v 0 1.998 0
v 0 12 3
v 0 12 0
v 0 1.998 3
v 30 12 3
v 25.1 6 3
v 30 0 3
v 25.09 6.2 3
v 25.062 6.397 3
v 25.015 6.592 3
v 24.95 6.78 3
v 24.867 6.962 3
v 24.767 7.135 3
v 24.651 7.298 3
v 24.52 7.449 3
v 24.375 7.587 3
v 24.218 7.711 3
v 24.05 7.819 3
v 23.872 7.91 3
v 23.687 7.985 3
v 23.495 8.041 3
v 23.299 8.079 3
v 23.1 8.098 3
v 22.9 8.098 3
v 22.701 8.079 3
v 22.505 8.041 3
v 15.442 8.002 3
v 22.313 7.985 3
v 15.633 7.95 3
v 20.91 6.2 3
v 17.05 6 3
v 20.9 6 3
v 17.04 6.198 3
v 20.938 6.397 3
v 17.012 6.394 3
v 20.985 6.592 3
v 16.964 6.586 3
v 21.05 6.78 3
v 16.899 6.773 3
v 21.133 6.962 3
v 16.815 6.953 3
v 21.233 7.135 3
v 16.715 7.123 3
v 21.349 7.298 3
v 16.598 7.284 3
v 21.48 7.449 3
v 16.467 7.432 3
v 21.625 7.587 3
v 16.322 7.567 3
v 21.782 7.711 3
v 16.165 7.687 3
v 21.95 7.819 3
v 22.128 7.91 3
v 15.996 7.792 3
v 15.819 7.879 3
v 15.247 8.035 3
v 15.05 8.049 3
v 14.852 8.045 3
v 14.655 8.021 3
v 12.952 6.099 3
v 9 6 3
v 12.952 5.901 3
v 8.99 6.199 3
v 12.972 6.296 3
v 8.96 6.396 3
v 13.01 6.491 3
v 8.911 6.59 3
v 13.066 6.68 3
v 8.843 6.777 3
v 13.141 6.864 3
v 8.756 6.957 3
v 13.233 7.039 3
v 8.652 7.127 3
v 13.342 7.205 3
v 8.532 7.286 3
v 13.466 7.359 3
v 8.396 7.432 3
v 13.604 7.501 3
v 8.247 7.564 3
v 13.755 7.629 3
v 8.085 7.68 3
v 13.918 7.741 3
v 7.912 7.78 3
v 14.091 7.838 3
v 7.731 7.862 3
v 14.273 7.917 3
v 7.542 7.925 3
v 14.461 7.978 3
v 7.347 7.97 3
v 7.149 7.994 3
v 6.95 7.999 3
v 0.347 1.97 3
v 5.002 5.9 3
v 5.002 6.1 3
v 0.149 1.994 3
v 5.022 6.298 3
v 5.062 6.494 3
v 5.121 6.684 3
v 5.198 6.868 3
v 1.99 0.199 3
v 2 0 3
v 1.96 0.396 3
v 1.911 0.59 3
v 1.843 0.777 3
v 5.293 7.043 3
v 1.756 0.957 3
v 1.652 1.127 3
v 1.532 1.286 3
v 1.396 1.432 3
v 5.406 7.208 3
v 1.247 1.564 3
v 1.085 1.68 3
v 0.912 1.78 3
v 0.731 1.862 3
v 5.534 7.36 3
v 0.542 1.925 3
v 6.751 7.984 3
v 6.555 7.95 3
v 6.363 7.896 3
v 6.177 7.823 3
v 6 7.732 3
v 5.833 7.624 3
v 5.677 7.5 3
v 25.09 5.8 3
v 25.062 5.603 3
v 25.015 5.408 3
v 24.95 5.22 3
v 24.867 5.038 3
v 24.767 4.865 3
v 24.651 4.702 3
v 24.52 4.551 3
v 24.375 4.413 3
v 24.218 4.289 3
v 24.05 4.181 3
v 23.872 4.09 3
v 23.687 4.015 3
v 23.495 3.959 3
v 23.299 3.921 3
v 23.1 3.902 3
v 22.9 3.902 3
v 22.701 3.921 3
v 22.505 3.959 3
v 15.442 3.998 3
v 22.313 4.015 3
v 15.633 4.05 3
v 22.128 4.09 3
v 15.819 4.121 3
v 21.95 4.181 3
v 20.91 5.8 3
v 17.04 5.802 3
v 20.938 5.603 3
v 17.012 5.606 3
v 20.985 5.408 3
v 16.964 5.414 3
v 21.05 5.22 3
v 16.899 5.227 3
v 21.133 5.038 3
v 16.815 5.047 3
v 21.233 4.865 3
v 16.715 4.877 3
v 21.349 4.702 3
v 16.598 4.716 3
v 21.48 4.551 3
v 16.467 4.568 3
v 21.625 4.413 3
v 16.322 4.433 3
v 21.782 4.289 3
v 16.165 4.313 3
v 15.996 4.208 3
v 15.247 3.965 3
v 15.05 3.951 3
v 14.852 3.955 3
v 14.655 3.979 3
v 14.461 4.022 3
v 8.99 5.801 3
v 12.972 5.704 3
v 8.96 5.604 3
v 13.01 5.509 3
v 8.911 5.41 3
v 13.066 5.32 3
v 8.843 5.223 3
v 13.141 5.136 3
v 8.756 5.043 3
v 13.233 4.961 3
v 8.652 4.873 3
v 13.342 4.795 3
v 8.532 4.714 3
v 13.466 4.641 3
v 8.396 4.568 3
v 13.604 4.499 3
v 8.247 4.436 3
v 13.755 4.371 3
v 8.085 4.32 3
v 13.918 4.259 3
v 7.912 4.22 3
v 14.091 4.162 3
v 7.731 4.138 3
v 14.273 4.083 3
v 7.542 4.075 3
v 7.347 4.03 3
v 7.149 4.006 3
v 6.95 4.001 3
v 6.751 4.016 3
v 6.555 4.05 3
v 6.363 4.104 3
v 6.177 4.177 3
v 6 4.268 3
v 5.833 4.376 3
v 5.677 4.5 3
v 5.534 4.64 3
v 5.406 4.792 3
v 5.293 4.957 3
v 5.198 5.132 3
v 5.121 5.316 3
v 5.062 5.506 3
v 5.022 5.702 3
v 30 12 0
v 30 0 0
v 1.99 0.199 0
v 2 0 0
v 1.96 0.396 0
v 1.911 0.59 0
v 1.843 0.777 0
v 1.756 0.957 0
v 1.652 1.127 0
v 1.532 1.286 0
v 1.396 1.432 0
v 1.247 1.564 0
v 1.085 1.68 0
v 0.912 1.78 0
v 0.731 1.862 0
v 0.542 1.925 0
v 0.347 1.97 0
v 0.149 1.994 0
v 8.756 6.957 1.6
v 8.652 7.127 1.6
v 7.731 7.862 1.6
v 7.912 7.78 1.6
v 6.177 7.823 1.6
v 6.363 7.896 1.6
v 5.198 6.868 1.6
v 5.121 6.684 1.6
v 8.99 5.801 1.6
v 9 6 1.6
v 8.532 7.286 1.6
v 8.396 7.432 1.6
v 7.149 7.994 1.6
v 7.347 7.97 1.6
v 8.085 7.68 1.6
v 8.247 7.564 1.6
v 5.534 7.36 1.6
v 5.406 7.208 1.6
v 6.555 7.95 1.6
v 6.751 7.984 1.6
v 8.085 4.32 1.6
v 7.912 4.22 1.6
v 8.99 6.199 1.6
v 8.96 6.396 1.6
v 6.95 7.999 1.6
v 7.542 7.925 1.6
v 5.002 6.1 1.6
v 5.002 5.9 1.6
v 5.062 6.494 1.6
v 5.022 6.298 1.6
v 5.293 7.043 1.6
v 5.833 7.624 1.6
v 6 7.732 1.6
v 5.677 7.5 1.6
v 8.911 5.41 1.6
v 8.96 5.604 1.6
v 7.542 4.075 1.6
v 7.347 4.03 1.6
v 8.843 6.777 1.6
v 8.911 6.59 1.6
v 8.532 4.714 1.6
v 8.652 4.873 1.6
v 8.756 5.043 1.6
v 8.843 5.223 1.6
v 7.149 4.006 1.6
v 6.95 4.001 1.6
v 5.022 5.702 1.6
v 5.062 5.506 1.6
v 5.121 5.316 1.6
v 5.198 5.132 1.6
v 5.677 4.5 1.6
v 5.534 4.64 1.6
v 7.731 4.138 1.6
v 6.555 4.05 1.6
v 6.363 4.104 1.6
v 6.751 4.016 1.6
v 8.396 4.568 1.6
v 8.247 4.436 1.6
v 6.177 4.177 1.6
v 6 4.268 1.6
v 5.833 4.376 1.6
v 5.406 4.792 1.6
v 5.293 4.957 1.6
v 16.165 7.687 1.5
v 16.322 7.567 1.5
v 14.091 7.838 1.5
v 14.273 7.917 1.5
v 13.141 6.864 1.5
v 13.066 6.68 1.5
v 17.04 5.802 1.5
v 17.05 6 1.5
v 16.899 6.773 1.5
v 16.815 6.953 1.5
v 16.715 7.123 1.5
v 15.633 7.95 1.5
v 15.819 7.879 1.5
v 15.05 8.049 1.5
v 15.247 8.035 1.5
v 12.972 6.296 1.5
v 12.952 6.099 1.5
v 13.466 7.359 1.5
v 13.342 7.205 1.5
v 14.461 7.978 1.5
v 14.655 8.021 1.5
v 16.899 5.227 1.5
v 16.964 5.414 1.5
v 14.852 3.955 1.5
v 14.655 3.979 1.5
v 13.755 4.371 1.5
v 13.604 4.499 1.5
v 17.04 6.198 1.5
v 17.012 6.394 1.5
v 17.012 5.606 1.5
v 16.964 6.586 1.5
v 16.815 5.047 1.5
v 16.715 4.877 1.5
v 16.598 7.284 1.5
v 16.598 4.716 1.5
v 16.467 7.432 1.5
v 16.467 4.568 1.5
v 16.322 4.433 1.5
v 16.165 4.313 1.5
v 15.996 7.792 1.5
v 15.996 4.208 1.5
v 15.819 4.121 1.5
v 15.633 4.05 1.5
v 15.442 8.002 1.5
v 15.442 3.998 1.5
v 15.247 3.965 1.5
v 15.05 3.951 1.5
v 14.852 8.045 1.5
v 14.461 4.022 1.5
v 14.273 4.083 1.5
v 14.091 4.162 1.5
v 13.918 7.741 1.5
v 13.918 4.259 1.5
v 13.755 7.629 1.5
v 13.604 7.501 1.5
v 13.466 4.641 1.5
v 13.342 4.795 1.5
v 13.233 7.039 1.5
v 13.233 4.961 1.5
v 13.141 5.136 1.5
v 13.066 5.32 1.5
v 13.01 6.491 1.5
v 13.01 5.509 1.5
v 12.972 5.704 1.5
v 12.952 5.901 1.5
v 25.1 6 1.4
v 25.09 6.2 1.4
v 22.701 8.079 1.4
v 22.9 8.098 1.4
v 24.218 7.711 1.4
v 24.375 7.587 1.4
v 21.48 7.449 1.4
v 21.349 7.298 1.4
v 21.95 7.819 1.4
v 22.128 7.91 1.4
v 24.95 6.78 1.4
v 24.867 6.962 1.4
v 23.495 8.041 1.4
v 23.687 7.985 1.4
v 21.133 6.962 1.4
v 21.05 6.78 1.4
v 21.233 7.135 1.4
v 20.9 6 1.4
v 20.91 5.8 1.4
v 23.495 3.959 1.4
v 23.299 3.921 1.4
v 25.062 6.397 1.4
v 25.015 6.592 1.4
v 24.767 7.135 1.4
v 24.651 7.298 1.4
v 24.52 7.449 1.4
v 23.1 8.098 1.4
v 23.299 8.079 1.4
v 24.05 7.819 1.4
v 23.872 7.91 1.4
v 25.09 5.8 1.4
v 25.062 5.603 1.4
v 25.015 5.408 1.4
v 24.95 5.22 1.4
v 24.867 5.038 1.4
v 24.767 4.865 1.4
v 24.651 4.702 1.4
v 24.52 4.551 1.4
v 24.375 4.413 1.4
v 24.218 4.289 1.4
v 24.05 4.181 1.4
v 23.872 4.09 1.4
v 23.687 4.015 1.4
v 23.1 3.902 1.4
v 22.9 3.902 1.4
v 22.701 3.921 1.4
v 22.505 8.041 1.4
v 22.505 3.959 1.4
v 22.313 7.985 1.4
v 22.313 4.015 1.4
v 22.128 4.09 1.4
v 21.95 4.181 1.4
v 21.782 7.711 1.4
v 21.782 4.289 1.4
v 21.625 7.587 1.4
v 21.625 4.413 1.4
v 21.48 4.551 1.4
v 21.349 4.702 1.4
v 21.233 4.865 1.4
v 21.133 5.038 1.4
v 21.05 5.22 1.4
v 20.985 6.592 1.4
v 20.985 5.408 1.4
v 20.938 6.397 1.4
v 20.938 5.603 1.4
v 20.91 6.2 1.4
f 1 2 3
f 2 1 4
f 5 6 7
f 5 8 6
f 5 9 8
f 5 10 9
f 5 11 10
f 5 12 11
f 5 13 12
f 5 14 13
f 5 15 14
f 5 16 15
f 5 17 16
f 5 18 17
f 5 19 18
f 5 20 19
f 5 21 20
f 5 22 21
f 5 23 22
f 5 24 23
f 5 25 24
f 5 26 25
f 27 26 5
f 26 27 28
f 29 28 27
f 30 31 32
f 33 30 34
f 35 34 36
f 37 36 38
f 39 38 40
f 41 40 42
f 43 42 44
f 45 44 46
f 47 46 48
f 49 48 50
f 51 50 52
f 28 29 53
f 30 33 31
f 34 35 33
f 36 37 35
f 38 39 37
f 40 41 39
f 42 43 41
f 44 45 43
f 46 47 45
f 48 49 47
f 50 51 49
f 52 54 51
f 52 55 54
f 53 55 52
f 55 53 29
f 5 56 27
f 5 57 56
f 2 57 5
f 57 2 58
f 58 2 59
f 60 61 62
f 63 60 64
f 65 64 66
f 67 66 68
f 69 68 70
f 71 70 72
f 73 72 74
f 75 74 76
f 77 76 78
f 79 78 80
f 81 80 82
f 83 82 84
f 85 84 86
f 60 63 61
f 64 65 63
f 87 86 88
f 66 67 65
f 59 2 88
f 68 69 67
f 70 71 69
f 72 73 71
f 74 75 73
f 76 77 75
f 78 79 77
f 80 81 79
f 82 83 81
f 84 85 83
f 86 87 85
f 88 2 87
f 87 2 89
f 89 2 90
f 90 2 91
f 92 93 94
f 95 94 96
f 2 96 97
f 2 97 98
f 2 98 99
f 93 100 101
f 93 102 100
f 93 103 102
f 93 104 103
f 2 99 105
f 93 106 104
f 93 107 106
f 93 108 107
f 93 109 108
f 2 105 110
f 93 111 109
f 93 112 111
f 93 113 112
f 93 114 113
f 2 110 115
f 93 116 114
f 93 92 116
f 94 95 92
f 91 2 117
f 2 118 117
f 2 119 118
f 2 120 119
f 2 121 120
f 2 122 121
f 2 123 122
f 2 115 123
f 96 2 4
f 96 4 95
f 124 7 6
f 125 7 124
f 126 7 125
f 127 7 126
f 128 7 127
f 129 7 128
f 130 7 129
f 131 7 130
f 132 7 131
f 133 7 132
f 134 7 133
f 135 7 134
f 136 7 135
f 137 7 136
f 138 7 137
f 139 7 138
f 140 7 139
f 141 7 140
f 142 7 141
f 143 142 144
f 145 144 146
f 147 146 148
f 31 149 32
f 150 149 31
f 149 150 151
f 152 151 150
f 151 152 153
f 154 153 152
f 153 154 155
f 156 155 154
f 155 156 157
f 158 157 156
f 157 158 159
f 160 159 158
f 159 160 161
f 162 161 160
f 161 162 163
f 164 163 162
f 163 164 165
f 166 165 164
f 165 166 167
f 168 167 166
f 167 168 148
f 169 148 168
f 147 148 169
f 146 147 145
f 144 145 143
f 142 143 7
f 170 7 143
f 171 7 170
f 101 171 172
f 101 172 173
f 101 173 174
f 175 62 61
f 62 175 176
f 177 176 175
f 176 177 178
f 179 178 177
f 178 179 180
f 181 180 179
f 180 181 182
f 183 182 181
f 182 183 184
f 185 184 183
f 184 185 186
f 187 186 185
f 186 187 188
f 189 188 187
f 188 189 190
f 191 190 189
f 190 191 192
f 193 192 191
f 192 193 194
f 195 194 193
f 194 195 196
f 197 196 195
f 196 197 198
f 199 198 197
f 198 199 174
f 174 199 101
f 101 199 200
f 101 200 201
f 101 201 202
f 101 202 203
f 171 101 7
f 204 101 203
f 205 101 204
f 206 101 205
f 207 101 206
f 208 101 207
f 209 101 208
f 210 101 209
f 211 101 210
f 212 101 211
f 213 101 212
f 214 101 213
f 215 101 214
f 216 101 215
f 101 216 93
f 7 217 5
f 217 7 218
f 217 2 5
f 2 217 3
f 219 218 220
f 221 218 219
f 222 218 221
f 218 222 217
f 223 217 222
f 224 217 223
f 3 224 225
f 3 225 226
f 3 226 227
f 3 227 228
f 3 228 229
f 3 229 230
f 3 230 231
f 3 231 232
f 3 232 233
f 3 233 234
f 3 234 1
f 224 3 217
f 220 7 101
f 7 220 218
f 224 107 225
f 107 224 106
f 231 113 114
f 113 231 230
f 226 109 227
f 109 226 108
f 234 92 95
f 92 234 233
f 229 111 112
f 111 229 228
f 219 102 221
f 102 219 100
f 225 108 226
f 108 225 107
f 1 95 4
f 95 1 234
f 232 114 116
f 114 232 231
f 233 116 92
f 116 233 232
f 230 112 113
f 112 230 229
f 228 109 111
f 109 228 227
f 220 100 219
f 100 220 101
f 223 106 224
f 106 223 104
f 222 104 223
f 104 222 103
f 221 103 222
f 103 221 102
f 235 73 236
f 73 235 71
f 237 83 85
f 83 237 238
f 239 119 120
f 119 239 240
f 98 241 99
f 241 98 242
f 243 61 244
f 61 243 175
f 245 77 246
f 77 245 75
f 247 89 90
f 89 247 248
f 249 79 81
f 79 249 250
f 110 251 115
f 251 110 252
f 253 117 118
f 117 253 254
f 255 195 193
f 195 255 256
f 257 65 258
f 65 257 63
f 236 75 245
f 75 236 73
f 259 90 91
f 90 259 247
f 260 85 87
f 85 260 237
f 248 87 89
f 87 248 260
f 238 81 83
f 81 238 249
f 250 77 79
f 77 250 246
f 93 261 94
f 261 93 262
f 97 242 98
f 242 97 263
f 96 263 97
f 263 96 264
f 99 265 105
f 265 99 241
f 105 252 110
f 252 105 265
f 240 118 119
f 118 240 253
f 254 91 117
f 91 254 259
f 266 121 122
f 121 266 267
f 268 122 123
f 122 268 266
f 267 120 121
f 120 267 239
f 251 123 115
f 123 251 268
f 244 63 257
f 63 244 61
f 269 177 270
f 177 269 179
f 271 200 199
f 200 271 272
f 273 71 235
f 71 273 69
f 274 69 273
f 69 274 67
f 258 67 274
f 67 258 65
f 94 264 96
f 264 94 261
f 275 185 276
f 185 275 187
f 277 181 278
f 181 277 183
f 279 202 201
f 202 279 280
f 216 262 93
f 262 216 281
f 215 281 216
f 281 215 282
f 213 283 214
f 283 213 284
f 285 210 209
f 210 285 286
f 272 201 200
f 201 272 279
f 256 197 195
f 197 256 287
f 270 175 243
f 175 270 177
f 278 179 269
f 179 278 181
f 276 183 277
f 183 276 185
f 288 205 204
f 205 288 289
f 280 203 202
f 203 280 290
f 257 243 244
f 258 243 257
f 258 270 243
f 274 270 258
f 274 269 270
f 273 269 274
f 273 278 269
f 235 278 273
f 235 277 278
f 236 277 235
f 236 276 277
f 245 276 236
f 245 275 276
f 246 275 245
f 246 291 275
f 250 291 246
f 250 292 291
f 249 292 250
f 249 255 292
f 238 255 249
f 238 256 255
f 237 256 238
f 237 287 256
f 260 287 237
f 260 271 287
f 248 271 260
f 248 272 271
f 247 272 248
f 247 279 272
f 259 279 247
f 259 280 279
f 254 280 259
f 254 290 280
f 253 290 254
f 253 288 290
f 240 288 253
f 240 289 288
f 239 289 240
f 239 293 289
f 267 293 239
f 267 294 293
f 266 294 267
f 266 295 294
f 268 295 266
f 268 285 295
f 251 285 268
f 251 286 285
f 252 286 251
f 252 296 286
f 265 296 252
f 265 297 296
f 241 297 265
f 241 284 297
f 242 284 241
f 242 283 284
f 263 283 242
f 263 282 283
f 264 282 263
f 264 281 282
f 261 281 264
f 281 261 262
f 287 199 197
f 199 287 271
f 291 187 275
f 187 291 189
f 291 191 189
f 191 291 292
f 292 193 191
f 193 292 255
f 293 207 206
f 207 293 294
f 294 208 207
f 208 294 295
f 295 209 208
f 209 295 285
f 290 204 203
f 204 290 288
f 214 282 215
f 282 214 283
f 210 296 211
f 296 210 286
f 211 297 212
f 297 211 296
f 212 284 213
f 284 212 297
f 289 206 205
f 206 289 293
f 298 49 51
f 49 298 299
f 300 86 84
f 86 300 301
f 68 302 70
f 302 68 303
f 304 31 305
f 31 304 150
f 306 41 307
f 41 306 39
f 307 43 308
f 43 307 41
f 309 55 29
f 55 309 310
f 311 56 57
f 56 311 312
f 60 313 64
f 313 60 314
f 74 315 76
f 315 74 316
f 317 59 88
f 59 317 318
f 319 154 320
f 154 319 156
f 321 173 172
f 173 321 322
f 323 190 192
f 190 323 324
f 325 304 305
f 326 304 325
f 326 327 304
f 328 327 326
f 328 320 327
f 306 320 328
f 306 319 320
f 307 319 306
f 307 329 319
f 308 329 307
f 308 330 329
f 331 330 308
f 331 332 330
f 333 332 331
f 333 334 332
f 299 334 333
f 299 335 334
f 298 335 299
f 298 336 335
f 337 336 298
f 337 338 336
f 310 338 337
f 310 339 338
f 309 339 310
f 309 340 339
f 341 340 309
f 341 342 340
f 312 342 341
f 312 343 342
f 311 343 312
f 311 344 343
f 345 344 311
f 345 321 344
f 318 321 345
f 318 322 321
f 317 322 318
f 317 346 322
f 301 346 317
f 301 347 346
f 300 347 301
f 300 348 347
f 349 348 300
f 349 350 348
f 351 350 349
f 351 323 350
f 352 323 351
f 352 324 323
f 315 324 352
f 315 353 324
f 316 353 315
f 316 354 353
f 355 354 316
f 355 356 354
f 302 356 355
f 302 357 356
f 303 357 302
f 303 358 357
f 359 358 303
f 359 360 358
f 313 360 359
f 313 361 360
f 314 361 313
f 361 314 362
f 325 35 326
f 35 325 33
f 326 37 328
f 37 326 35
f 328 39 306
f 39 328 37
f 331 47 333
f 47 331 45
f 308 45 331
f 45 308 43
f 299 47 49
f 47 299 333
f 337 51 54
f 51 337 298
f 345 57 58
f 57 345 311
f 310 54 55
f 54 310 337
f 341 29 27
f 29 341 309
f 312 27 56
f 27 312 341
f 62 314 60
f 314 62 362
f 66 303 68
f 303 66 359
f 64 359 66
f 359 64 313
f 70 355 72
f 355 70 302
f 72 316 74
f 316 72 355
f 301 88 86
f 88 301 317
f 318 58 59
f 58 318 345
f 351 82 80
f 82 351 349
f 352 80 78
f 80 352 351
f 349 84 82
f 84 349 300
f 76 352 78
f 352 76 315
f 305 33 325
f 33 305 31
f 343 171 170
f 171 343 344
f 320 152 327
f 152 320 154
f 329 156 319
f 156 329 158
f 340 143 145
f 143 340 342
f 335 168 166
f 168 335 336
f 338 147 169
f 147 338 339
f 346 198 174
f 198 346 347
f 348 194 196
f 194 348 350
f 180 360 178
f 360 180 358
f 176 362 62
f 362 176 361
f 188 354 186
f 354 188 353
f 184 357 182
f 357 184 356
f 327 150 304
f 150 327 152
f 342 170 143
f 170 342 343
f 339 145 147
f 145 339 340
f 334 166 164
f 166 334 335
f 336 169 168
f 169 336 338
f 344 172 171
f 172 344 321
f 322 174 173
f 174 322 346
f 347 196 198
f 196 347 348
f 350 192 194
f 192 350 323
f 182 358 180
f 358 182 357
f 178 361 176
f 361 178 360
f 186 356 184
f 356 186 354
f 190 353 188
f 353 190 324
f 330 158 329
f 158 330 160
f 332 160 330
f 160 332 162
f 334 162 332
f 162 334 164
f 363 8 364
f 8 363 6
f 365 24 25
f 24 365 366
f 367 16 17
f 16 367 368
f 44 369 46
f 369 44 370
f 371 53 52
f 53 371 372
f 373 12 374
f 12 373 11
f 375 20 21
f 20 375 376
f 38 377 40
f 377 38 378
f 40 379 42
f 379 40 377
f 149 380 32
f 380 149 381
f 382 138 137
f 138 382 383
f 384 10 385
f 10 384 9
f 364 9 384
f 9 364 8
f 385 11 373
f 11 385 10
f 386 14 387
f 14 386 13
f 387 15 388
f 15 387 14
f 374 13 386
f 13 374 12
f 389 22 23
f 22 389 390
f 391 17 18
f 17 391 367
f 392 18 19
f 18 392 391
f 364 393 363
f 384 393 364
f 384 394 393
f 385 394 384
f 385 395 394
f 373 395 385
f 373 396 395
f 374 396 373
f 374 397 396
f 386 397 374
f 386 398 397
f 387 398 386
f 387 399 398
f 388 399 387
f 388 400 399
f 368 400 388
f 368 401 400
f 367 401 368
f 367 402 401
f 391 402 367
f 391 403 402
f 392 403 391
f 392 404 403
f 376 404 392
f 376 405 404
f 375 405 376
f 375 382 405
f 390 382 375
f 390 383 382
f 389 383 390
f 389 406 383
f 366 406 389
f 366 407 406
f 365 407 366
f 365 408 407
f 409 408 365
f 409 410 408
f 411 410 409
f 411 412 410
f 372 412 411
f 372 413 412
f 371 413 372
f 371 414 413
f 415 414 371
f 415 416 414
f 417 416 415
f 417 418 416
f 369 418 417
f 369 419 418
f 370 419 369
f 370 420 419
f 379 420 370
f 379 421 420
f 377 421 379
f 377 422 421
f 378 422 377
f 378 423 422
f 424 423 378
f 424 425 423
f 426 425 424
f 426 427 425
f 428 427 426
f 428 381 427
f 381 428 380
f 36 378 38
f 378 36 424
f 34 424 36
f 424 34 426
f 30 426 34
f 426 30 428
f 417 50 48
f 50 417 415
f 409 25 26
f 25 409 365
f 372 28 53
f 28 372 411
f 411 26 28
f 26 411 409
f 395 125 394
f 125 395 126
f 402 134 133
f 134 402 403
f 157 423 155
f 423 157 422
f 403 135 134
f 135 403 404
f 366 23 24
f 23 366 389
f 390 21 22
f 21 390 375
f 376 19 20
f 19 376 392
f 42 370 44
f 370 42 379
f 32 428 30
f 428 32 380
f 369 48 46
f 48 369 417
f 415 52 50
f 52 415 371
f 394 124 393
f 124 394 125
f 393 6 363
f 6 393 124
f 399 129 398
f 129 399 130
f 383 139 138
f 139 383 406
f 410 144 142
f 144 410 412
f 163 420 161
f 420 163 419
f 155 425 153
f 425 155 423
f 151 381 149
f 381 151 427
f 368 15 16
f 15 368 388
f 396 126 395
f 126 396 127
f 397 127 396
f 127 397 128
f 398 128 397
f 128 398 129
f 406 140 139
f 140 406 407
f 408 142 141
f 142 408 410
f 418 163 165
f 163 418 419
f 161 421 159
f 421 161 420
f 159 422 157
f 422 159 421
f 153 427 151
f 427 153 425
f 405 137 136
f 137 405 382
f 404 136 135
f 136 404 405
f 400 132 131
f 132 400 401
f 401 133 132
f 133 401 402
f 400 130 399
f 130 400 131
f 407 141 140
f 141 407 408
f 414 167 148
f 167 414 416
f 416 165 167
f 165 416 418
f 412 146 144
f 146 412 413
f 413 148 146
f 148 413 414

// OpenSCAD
$fa = 1;
$fs = 0.2;

difference(){
    // Outer cylinder of the ring
    cube([30, 12, 3]);
    cylinder(h = 3, r = 2);

    // Inner cylinder to create the hole in the middle
    translate([7, 6, 3 - 1.4])
        cylinder(h = 1.4, d = 4.0);

        // Inner cylinder to create the hole in the middle
    translate([15, 6, 3 - 1.5])
        cylinder(h = 1.5, d = 4.1);

        // Inner cylinder to create the hole in the middle
    translate([23, 6, 3 - 1.6])
        cylinder(h = 1.6, d = 4.2);

}
